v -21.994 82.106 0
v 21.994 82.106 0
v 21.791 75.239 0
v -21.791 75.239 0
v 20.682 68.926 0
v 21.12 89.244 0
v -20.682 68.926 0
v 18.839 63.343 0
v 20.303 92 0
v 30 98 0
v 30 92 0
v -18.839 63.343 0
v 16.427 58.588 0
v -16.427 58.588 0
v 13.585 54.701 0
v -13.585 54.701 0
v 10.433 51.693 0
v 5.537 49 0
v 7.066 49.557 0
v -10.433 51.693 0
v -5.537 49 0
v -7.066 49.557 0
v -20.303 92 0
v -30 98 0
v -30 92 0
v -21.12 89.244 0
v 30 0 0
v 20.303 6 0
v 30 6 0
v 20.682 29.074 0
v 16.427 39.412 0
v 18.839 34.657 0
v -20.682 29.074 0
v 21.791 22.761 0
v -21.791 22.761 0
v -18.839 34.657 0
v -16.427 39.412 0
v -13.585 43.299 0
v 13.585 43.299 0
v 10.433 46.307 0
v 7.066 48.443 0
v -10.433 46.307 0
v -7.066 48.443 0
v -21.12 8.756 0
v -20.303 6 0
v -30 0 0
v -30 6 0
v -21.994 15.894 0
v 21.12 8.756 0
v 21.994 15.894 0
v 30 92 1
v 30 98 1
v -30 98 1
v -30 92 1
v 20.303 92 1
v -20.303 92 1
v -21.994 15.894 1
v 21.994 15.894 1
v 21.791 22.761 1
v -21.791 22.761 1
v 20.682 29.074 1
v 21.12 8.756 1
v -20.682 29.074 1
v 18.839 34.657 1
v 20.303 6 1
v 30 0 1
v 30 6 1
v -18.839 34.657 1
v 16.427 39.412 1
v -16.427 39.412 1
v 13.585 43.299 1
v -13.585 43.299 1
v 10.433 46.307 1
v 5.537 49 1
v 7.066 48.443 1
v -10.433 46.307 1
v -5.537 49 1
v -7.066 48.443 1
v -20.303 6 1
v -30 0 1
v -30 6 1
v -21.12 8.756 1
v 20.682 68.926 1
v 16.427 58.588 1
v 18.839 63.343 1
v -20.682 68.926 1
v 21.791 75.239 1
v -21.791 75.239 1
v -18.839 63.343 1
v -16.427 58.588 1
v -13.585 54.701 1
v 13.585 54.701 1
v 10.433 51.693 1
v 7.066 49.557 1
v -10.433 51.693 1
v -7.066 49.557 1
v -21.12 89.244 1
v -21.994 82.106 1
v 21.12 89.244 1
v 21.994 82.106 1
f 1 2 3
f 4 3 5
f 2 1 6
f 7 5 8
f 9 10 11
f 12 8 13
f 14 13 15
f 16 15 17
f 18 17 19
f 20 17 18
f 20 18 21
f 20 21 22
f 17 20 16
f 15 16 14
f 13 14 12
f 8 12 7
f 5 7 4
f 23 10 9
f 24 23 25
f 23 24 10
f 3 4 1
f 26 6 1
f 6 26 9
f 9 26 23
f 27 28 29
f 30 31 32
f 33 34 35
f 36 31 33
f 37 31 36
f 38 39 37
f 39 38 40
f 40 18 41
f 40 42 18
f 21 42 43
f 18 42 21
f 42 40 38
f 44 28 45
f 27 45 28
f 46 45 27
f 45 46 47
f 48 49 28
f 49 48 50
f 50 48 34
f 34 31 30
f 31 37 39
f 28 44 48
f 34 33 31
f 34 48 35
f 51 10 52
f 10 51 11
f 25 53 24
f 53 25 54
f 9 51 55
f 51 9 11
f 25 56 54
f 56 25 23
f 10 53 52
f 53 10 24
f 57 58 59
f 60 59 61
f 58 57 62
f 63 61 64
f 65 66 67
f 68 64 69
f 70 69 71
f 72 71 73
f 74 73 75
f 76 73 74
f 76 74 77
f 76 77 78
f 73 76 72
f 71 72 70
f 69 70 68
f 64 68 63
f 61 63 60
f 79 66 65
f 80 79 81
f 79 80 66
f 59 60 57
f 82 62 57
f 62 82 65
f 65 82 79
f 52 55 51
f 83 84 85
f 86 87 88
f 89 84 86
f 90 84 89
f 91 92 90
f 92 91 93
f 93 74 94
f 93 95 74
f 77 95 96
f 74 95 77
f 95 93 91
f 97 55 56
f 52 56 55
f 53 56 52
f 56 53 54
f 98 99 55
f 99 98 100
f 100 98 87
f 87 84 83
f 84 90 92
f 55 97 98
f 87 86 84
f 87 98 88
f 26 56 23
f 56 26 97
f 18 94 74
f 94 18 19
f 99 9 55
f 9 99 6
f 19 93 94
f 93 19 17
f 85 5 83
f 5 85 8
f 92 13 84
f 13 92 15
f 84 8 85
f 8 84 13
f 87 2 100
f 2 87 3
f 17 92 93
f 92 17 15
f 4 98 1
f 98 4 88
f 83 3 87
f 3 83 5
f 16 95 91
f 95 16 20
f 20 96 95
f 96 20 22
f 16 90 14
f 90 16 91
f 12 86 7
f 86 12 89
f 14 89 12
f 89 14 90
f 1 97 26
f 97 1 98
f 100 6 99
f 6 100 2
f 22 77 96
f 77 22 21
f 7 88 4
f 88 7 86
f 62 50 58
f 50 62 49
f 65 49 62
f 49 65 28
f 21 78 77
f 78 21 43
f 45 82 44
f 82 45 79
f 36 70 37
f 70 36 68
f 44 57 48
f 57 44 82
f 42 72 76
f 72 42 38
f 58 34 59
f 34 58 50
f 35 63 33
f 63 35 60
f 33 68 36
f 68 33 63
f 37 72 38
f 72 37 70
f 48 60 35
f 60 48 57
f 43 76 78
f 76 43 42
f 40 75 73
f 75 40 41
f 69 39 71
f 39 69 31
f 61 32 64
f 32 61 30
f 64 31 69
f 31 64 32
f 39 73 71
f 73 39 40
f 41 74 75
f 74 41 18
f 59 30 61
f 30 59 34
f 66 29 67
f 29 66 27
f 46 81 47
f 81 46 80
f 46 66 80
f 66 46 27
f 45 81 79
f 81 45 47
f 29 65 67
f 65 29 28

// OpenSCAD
// file: ../horseshoe/horseshoe.scad
module horseshoeProjection()
{
	rotate ([0, 0, 90])
	translate ([45, 0, 0]) 
	projection(cut=true) // the projection is from http://blog.bangsplatpresents.com/?p=1123
	{
		translate( v=[0,0,25] ) 
		{
			rotate( a=[0,45,0] ) 
			{
				cylinder( r1=25, r2=0, h=100, center=true );
			}
		}
	}
}

module horseshoe()
{
	linear_extrude(height=10)
	difference() 
	{ 
		horseshoeProjection();
		
		translate ([0, -1, 0])
		scale ([0.85, .9, 1]) 
		horseshoeProjection();
	}
}

horseshoe();
// main file
use <../horseshoe/horseshoe.scad>;

module bar()
{
	translate ([-30, 43, 0]) 
	color ("black")
	linear_extrude(height=1)
	square ([60 , 6]);
}

module hourglass()
{
	union () 
	{ 
		// top bar
		bar();
		
		// top glass
		rotate ([0, 0, 180]) 
		translate ([0, -43, 0])
		color("teal")
		linear_extrude(height=1)
		horseshoeProjection();

		// botton glass
		translate ([0, -43, 0])
		linear_extrude(height=1)
		horseshoeProjection();
		
		// bottom bar
		translate ([0, -92, 0]) 
		bar();
	}
}

translate ([0, 49, 0])
hourglass();
